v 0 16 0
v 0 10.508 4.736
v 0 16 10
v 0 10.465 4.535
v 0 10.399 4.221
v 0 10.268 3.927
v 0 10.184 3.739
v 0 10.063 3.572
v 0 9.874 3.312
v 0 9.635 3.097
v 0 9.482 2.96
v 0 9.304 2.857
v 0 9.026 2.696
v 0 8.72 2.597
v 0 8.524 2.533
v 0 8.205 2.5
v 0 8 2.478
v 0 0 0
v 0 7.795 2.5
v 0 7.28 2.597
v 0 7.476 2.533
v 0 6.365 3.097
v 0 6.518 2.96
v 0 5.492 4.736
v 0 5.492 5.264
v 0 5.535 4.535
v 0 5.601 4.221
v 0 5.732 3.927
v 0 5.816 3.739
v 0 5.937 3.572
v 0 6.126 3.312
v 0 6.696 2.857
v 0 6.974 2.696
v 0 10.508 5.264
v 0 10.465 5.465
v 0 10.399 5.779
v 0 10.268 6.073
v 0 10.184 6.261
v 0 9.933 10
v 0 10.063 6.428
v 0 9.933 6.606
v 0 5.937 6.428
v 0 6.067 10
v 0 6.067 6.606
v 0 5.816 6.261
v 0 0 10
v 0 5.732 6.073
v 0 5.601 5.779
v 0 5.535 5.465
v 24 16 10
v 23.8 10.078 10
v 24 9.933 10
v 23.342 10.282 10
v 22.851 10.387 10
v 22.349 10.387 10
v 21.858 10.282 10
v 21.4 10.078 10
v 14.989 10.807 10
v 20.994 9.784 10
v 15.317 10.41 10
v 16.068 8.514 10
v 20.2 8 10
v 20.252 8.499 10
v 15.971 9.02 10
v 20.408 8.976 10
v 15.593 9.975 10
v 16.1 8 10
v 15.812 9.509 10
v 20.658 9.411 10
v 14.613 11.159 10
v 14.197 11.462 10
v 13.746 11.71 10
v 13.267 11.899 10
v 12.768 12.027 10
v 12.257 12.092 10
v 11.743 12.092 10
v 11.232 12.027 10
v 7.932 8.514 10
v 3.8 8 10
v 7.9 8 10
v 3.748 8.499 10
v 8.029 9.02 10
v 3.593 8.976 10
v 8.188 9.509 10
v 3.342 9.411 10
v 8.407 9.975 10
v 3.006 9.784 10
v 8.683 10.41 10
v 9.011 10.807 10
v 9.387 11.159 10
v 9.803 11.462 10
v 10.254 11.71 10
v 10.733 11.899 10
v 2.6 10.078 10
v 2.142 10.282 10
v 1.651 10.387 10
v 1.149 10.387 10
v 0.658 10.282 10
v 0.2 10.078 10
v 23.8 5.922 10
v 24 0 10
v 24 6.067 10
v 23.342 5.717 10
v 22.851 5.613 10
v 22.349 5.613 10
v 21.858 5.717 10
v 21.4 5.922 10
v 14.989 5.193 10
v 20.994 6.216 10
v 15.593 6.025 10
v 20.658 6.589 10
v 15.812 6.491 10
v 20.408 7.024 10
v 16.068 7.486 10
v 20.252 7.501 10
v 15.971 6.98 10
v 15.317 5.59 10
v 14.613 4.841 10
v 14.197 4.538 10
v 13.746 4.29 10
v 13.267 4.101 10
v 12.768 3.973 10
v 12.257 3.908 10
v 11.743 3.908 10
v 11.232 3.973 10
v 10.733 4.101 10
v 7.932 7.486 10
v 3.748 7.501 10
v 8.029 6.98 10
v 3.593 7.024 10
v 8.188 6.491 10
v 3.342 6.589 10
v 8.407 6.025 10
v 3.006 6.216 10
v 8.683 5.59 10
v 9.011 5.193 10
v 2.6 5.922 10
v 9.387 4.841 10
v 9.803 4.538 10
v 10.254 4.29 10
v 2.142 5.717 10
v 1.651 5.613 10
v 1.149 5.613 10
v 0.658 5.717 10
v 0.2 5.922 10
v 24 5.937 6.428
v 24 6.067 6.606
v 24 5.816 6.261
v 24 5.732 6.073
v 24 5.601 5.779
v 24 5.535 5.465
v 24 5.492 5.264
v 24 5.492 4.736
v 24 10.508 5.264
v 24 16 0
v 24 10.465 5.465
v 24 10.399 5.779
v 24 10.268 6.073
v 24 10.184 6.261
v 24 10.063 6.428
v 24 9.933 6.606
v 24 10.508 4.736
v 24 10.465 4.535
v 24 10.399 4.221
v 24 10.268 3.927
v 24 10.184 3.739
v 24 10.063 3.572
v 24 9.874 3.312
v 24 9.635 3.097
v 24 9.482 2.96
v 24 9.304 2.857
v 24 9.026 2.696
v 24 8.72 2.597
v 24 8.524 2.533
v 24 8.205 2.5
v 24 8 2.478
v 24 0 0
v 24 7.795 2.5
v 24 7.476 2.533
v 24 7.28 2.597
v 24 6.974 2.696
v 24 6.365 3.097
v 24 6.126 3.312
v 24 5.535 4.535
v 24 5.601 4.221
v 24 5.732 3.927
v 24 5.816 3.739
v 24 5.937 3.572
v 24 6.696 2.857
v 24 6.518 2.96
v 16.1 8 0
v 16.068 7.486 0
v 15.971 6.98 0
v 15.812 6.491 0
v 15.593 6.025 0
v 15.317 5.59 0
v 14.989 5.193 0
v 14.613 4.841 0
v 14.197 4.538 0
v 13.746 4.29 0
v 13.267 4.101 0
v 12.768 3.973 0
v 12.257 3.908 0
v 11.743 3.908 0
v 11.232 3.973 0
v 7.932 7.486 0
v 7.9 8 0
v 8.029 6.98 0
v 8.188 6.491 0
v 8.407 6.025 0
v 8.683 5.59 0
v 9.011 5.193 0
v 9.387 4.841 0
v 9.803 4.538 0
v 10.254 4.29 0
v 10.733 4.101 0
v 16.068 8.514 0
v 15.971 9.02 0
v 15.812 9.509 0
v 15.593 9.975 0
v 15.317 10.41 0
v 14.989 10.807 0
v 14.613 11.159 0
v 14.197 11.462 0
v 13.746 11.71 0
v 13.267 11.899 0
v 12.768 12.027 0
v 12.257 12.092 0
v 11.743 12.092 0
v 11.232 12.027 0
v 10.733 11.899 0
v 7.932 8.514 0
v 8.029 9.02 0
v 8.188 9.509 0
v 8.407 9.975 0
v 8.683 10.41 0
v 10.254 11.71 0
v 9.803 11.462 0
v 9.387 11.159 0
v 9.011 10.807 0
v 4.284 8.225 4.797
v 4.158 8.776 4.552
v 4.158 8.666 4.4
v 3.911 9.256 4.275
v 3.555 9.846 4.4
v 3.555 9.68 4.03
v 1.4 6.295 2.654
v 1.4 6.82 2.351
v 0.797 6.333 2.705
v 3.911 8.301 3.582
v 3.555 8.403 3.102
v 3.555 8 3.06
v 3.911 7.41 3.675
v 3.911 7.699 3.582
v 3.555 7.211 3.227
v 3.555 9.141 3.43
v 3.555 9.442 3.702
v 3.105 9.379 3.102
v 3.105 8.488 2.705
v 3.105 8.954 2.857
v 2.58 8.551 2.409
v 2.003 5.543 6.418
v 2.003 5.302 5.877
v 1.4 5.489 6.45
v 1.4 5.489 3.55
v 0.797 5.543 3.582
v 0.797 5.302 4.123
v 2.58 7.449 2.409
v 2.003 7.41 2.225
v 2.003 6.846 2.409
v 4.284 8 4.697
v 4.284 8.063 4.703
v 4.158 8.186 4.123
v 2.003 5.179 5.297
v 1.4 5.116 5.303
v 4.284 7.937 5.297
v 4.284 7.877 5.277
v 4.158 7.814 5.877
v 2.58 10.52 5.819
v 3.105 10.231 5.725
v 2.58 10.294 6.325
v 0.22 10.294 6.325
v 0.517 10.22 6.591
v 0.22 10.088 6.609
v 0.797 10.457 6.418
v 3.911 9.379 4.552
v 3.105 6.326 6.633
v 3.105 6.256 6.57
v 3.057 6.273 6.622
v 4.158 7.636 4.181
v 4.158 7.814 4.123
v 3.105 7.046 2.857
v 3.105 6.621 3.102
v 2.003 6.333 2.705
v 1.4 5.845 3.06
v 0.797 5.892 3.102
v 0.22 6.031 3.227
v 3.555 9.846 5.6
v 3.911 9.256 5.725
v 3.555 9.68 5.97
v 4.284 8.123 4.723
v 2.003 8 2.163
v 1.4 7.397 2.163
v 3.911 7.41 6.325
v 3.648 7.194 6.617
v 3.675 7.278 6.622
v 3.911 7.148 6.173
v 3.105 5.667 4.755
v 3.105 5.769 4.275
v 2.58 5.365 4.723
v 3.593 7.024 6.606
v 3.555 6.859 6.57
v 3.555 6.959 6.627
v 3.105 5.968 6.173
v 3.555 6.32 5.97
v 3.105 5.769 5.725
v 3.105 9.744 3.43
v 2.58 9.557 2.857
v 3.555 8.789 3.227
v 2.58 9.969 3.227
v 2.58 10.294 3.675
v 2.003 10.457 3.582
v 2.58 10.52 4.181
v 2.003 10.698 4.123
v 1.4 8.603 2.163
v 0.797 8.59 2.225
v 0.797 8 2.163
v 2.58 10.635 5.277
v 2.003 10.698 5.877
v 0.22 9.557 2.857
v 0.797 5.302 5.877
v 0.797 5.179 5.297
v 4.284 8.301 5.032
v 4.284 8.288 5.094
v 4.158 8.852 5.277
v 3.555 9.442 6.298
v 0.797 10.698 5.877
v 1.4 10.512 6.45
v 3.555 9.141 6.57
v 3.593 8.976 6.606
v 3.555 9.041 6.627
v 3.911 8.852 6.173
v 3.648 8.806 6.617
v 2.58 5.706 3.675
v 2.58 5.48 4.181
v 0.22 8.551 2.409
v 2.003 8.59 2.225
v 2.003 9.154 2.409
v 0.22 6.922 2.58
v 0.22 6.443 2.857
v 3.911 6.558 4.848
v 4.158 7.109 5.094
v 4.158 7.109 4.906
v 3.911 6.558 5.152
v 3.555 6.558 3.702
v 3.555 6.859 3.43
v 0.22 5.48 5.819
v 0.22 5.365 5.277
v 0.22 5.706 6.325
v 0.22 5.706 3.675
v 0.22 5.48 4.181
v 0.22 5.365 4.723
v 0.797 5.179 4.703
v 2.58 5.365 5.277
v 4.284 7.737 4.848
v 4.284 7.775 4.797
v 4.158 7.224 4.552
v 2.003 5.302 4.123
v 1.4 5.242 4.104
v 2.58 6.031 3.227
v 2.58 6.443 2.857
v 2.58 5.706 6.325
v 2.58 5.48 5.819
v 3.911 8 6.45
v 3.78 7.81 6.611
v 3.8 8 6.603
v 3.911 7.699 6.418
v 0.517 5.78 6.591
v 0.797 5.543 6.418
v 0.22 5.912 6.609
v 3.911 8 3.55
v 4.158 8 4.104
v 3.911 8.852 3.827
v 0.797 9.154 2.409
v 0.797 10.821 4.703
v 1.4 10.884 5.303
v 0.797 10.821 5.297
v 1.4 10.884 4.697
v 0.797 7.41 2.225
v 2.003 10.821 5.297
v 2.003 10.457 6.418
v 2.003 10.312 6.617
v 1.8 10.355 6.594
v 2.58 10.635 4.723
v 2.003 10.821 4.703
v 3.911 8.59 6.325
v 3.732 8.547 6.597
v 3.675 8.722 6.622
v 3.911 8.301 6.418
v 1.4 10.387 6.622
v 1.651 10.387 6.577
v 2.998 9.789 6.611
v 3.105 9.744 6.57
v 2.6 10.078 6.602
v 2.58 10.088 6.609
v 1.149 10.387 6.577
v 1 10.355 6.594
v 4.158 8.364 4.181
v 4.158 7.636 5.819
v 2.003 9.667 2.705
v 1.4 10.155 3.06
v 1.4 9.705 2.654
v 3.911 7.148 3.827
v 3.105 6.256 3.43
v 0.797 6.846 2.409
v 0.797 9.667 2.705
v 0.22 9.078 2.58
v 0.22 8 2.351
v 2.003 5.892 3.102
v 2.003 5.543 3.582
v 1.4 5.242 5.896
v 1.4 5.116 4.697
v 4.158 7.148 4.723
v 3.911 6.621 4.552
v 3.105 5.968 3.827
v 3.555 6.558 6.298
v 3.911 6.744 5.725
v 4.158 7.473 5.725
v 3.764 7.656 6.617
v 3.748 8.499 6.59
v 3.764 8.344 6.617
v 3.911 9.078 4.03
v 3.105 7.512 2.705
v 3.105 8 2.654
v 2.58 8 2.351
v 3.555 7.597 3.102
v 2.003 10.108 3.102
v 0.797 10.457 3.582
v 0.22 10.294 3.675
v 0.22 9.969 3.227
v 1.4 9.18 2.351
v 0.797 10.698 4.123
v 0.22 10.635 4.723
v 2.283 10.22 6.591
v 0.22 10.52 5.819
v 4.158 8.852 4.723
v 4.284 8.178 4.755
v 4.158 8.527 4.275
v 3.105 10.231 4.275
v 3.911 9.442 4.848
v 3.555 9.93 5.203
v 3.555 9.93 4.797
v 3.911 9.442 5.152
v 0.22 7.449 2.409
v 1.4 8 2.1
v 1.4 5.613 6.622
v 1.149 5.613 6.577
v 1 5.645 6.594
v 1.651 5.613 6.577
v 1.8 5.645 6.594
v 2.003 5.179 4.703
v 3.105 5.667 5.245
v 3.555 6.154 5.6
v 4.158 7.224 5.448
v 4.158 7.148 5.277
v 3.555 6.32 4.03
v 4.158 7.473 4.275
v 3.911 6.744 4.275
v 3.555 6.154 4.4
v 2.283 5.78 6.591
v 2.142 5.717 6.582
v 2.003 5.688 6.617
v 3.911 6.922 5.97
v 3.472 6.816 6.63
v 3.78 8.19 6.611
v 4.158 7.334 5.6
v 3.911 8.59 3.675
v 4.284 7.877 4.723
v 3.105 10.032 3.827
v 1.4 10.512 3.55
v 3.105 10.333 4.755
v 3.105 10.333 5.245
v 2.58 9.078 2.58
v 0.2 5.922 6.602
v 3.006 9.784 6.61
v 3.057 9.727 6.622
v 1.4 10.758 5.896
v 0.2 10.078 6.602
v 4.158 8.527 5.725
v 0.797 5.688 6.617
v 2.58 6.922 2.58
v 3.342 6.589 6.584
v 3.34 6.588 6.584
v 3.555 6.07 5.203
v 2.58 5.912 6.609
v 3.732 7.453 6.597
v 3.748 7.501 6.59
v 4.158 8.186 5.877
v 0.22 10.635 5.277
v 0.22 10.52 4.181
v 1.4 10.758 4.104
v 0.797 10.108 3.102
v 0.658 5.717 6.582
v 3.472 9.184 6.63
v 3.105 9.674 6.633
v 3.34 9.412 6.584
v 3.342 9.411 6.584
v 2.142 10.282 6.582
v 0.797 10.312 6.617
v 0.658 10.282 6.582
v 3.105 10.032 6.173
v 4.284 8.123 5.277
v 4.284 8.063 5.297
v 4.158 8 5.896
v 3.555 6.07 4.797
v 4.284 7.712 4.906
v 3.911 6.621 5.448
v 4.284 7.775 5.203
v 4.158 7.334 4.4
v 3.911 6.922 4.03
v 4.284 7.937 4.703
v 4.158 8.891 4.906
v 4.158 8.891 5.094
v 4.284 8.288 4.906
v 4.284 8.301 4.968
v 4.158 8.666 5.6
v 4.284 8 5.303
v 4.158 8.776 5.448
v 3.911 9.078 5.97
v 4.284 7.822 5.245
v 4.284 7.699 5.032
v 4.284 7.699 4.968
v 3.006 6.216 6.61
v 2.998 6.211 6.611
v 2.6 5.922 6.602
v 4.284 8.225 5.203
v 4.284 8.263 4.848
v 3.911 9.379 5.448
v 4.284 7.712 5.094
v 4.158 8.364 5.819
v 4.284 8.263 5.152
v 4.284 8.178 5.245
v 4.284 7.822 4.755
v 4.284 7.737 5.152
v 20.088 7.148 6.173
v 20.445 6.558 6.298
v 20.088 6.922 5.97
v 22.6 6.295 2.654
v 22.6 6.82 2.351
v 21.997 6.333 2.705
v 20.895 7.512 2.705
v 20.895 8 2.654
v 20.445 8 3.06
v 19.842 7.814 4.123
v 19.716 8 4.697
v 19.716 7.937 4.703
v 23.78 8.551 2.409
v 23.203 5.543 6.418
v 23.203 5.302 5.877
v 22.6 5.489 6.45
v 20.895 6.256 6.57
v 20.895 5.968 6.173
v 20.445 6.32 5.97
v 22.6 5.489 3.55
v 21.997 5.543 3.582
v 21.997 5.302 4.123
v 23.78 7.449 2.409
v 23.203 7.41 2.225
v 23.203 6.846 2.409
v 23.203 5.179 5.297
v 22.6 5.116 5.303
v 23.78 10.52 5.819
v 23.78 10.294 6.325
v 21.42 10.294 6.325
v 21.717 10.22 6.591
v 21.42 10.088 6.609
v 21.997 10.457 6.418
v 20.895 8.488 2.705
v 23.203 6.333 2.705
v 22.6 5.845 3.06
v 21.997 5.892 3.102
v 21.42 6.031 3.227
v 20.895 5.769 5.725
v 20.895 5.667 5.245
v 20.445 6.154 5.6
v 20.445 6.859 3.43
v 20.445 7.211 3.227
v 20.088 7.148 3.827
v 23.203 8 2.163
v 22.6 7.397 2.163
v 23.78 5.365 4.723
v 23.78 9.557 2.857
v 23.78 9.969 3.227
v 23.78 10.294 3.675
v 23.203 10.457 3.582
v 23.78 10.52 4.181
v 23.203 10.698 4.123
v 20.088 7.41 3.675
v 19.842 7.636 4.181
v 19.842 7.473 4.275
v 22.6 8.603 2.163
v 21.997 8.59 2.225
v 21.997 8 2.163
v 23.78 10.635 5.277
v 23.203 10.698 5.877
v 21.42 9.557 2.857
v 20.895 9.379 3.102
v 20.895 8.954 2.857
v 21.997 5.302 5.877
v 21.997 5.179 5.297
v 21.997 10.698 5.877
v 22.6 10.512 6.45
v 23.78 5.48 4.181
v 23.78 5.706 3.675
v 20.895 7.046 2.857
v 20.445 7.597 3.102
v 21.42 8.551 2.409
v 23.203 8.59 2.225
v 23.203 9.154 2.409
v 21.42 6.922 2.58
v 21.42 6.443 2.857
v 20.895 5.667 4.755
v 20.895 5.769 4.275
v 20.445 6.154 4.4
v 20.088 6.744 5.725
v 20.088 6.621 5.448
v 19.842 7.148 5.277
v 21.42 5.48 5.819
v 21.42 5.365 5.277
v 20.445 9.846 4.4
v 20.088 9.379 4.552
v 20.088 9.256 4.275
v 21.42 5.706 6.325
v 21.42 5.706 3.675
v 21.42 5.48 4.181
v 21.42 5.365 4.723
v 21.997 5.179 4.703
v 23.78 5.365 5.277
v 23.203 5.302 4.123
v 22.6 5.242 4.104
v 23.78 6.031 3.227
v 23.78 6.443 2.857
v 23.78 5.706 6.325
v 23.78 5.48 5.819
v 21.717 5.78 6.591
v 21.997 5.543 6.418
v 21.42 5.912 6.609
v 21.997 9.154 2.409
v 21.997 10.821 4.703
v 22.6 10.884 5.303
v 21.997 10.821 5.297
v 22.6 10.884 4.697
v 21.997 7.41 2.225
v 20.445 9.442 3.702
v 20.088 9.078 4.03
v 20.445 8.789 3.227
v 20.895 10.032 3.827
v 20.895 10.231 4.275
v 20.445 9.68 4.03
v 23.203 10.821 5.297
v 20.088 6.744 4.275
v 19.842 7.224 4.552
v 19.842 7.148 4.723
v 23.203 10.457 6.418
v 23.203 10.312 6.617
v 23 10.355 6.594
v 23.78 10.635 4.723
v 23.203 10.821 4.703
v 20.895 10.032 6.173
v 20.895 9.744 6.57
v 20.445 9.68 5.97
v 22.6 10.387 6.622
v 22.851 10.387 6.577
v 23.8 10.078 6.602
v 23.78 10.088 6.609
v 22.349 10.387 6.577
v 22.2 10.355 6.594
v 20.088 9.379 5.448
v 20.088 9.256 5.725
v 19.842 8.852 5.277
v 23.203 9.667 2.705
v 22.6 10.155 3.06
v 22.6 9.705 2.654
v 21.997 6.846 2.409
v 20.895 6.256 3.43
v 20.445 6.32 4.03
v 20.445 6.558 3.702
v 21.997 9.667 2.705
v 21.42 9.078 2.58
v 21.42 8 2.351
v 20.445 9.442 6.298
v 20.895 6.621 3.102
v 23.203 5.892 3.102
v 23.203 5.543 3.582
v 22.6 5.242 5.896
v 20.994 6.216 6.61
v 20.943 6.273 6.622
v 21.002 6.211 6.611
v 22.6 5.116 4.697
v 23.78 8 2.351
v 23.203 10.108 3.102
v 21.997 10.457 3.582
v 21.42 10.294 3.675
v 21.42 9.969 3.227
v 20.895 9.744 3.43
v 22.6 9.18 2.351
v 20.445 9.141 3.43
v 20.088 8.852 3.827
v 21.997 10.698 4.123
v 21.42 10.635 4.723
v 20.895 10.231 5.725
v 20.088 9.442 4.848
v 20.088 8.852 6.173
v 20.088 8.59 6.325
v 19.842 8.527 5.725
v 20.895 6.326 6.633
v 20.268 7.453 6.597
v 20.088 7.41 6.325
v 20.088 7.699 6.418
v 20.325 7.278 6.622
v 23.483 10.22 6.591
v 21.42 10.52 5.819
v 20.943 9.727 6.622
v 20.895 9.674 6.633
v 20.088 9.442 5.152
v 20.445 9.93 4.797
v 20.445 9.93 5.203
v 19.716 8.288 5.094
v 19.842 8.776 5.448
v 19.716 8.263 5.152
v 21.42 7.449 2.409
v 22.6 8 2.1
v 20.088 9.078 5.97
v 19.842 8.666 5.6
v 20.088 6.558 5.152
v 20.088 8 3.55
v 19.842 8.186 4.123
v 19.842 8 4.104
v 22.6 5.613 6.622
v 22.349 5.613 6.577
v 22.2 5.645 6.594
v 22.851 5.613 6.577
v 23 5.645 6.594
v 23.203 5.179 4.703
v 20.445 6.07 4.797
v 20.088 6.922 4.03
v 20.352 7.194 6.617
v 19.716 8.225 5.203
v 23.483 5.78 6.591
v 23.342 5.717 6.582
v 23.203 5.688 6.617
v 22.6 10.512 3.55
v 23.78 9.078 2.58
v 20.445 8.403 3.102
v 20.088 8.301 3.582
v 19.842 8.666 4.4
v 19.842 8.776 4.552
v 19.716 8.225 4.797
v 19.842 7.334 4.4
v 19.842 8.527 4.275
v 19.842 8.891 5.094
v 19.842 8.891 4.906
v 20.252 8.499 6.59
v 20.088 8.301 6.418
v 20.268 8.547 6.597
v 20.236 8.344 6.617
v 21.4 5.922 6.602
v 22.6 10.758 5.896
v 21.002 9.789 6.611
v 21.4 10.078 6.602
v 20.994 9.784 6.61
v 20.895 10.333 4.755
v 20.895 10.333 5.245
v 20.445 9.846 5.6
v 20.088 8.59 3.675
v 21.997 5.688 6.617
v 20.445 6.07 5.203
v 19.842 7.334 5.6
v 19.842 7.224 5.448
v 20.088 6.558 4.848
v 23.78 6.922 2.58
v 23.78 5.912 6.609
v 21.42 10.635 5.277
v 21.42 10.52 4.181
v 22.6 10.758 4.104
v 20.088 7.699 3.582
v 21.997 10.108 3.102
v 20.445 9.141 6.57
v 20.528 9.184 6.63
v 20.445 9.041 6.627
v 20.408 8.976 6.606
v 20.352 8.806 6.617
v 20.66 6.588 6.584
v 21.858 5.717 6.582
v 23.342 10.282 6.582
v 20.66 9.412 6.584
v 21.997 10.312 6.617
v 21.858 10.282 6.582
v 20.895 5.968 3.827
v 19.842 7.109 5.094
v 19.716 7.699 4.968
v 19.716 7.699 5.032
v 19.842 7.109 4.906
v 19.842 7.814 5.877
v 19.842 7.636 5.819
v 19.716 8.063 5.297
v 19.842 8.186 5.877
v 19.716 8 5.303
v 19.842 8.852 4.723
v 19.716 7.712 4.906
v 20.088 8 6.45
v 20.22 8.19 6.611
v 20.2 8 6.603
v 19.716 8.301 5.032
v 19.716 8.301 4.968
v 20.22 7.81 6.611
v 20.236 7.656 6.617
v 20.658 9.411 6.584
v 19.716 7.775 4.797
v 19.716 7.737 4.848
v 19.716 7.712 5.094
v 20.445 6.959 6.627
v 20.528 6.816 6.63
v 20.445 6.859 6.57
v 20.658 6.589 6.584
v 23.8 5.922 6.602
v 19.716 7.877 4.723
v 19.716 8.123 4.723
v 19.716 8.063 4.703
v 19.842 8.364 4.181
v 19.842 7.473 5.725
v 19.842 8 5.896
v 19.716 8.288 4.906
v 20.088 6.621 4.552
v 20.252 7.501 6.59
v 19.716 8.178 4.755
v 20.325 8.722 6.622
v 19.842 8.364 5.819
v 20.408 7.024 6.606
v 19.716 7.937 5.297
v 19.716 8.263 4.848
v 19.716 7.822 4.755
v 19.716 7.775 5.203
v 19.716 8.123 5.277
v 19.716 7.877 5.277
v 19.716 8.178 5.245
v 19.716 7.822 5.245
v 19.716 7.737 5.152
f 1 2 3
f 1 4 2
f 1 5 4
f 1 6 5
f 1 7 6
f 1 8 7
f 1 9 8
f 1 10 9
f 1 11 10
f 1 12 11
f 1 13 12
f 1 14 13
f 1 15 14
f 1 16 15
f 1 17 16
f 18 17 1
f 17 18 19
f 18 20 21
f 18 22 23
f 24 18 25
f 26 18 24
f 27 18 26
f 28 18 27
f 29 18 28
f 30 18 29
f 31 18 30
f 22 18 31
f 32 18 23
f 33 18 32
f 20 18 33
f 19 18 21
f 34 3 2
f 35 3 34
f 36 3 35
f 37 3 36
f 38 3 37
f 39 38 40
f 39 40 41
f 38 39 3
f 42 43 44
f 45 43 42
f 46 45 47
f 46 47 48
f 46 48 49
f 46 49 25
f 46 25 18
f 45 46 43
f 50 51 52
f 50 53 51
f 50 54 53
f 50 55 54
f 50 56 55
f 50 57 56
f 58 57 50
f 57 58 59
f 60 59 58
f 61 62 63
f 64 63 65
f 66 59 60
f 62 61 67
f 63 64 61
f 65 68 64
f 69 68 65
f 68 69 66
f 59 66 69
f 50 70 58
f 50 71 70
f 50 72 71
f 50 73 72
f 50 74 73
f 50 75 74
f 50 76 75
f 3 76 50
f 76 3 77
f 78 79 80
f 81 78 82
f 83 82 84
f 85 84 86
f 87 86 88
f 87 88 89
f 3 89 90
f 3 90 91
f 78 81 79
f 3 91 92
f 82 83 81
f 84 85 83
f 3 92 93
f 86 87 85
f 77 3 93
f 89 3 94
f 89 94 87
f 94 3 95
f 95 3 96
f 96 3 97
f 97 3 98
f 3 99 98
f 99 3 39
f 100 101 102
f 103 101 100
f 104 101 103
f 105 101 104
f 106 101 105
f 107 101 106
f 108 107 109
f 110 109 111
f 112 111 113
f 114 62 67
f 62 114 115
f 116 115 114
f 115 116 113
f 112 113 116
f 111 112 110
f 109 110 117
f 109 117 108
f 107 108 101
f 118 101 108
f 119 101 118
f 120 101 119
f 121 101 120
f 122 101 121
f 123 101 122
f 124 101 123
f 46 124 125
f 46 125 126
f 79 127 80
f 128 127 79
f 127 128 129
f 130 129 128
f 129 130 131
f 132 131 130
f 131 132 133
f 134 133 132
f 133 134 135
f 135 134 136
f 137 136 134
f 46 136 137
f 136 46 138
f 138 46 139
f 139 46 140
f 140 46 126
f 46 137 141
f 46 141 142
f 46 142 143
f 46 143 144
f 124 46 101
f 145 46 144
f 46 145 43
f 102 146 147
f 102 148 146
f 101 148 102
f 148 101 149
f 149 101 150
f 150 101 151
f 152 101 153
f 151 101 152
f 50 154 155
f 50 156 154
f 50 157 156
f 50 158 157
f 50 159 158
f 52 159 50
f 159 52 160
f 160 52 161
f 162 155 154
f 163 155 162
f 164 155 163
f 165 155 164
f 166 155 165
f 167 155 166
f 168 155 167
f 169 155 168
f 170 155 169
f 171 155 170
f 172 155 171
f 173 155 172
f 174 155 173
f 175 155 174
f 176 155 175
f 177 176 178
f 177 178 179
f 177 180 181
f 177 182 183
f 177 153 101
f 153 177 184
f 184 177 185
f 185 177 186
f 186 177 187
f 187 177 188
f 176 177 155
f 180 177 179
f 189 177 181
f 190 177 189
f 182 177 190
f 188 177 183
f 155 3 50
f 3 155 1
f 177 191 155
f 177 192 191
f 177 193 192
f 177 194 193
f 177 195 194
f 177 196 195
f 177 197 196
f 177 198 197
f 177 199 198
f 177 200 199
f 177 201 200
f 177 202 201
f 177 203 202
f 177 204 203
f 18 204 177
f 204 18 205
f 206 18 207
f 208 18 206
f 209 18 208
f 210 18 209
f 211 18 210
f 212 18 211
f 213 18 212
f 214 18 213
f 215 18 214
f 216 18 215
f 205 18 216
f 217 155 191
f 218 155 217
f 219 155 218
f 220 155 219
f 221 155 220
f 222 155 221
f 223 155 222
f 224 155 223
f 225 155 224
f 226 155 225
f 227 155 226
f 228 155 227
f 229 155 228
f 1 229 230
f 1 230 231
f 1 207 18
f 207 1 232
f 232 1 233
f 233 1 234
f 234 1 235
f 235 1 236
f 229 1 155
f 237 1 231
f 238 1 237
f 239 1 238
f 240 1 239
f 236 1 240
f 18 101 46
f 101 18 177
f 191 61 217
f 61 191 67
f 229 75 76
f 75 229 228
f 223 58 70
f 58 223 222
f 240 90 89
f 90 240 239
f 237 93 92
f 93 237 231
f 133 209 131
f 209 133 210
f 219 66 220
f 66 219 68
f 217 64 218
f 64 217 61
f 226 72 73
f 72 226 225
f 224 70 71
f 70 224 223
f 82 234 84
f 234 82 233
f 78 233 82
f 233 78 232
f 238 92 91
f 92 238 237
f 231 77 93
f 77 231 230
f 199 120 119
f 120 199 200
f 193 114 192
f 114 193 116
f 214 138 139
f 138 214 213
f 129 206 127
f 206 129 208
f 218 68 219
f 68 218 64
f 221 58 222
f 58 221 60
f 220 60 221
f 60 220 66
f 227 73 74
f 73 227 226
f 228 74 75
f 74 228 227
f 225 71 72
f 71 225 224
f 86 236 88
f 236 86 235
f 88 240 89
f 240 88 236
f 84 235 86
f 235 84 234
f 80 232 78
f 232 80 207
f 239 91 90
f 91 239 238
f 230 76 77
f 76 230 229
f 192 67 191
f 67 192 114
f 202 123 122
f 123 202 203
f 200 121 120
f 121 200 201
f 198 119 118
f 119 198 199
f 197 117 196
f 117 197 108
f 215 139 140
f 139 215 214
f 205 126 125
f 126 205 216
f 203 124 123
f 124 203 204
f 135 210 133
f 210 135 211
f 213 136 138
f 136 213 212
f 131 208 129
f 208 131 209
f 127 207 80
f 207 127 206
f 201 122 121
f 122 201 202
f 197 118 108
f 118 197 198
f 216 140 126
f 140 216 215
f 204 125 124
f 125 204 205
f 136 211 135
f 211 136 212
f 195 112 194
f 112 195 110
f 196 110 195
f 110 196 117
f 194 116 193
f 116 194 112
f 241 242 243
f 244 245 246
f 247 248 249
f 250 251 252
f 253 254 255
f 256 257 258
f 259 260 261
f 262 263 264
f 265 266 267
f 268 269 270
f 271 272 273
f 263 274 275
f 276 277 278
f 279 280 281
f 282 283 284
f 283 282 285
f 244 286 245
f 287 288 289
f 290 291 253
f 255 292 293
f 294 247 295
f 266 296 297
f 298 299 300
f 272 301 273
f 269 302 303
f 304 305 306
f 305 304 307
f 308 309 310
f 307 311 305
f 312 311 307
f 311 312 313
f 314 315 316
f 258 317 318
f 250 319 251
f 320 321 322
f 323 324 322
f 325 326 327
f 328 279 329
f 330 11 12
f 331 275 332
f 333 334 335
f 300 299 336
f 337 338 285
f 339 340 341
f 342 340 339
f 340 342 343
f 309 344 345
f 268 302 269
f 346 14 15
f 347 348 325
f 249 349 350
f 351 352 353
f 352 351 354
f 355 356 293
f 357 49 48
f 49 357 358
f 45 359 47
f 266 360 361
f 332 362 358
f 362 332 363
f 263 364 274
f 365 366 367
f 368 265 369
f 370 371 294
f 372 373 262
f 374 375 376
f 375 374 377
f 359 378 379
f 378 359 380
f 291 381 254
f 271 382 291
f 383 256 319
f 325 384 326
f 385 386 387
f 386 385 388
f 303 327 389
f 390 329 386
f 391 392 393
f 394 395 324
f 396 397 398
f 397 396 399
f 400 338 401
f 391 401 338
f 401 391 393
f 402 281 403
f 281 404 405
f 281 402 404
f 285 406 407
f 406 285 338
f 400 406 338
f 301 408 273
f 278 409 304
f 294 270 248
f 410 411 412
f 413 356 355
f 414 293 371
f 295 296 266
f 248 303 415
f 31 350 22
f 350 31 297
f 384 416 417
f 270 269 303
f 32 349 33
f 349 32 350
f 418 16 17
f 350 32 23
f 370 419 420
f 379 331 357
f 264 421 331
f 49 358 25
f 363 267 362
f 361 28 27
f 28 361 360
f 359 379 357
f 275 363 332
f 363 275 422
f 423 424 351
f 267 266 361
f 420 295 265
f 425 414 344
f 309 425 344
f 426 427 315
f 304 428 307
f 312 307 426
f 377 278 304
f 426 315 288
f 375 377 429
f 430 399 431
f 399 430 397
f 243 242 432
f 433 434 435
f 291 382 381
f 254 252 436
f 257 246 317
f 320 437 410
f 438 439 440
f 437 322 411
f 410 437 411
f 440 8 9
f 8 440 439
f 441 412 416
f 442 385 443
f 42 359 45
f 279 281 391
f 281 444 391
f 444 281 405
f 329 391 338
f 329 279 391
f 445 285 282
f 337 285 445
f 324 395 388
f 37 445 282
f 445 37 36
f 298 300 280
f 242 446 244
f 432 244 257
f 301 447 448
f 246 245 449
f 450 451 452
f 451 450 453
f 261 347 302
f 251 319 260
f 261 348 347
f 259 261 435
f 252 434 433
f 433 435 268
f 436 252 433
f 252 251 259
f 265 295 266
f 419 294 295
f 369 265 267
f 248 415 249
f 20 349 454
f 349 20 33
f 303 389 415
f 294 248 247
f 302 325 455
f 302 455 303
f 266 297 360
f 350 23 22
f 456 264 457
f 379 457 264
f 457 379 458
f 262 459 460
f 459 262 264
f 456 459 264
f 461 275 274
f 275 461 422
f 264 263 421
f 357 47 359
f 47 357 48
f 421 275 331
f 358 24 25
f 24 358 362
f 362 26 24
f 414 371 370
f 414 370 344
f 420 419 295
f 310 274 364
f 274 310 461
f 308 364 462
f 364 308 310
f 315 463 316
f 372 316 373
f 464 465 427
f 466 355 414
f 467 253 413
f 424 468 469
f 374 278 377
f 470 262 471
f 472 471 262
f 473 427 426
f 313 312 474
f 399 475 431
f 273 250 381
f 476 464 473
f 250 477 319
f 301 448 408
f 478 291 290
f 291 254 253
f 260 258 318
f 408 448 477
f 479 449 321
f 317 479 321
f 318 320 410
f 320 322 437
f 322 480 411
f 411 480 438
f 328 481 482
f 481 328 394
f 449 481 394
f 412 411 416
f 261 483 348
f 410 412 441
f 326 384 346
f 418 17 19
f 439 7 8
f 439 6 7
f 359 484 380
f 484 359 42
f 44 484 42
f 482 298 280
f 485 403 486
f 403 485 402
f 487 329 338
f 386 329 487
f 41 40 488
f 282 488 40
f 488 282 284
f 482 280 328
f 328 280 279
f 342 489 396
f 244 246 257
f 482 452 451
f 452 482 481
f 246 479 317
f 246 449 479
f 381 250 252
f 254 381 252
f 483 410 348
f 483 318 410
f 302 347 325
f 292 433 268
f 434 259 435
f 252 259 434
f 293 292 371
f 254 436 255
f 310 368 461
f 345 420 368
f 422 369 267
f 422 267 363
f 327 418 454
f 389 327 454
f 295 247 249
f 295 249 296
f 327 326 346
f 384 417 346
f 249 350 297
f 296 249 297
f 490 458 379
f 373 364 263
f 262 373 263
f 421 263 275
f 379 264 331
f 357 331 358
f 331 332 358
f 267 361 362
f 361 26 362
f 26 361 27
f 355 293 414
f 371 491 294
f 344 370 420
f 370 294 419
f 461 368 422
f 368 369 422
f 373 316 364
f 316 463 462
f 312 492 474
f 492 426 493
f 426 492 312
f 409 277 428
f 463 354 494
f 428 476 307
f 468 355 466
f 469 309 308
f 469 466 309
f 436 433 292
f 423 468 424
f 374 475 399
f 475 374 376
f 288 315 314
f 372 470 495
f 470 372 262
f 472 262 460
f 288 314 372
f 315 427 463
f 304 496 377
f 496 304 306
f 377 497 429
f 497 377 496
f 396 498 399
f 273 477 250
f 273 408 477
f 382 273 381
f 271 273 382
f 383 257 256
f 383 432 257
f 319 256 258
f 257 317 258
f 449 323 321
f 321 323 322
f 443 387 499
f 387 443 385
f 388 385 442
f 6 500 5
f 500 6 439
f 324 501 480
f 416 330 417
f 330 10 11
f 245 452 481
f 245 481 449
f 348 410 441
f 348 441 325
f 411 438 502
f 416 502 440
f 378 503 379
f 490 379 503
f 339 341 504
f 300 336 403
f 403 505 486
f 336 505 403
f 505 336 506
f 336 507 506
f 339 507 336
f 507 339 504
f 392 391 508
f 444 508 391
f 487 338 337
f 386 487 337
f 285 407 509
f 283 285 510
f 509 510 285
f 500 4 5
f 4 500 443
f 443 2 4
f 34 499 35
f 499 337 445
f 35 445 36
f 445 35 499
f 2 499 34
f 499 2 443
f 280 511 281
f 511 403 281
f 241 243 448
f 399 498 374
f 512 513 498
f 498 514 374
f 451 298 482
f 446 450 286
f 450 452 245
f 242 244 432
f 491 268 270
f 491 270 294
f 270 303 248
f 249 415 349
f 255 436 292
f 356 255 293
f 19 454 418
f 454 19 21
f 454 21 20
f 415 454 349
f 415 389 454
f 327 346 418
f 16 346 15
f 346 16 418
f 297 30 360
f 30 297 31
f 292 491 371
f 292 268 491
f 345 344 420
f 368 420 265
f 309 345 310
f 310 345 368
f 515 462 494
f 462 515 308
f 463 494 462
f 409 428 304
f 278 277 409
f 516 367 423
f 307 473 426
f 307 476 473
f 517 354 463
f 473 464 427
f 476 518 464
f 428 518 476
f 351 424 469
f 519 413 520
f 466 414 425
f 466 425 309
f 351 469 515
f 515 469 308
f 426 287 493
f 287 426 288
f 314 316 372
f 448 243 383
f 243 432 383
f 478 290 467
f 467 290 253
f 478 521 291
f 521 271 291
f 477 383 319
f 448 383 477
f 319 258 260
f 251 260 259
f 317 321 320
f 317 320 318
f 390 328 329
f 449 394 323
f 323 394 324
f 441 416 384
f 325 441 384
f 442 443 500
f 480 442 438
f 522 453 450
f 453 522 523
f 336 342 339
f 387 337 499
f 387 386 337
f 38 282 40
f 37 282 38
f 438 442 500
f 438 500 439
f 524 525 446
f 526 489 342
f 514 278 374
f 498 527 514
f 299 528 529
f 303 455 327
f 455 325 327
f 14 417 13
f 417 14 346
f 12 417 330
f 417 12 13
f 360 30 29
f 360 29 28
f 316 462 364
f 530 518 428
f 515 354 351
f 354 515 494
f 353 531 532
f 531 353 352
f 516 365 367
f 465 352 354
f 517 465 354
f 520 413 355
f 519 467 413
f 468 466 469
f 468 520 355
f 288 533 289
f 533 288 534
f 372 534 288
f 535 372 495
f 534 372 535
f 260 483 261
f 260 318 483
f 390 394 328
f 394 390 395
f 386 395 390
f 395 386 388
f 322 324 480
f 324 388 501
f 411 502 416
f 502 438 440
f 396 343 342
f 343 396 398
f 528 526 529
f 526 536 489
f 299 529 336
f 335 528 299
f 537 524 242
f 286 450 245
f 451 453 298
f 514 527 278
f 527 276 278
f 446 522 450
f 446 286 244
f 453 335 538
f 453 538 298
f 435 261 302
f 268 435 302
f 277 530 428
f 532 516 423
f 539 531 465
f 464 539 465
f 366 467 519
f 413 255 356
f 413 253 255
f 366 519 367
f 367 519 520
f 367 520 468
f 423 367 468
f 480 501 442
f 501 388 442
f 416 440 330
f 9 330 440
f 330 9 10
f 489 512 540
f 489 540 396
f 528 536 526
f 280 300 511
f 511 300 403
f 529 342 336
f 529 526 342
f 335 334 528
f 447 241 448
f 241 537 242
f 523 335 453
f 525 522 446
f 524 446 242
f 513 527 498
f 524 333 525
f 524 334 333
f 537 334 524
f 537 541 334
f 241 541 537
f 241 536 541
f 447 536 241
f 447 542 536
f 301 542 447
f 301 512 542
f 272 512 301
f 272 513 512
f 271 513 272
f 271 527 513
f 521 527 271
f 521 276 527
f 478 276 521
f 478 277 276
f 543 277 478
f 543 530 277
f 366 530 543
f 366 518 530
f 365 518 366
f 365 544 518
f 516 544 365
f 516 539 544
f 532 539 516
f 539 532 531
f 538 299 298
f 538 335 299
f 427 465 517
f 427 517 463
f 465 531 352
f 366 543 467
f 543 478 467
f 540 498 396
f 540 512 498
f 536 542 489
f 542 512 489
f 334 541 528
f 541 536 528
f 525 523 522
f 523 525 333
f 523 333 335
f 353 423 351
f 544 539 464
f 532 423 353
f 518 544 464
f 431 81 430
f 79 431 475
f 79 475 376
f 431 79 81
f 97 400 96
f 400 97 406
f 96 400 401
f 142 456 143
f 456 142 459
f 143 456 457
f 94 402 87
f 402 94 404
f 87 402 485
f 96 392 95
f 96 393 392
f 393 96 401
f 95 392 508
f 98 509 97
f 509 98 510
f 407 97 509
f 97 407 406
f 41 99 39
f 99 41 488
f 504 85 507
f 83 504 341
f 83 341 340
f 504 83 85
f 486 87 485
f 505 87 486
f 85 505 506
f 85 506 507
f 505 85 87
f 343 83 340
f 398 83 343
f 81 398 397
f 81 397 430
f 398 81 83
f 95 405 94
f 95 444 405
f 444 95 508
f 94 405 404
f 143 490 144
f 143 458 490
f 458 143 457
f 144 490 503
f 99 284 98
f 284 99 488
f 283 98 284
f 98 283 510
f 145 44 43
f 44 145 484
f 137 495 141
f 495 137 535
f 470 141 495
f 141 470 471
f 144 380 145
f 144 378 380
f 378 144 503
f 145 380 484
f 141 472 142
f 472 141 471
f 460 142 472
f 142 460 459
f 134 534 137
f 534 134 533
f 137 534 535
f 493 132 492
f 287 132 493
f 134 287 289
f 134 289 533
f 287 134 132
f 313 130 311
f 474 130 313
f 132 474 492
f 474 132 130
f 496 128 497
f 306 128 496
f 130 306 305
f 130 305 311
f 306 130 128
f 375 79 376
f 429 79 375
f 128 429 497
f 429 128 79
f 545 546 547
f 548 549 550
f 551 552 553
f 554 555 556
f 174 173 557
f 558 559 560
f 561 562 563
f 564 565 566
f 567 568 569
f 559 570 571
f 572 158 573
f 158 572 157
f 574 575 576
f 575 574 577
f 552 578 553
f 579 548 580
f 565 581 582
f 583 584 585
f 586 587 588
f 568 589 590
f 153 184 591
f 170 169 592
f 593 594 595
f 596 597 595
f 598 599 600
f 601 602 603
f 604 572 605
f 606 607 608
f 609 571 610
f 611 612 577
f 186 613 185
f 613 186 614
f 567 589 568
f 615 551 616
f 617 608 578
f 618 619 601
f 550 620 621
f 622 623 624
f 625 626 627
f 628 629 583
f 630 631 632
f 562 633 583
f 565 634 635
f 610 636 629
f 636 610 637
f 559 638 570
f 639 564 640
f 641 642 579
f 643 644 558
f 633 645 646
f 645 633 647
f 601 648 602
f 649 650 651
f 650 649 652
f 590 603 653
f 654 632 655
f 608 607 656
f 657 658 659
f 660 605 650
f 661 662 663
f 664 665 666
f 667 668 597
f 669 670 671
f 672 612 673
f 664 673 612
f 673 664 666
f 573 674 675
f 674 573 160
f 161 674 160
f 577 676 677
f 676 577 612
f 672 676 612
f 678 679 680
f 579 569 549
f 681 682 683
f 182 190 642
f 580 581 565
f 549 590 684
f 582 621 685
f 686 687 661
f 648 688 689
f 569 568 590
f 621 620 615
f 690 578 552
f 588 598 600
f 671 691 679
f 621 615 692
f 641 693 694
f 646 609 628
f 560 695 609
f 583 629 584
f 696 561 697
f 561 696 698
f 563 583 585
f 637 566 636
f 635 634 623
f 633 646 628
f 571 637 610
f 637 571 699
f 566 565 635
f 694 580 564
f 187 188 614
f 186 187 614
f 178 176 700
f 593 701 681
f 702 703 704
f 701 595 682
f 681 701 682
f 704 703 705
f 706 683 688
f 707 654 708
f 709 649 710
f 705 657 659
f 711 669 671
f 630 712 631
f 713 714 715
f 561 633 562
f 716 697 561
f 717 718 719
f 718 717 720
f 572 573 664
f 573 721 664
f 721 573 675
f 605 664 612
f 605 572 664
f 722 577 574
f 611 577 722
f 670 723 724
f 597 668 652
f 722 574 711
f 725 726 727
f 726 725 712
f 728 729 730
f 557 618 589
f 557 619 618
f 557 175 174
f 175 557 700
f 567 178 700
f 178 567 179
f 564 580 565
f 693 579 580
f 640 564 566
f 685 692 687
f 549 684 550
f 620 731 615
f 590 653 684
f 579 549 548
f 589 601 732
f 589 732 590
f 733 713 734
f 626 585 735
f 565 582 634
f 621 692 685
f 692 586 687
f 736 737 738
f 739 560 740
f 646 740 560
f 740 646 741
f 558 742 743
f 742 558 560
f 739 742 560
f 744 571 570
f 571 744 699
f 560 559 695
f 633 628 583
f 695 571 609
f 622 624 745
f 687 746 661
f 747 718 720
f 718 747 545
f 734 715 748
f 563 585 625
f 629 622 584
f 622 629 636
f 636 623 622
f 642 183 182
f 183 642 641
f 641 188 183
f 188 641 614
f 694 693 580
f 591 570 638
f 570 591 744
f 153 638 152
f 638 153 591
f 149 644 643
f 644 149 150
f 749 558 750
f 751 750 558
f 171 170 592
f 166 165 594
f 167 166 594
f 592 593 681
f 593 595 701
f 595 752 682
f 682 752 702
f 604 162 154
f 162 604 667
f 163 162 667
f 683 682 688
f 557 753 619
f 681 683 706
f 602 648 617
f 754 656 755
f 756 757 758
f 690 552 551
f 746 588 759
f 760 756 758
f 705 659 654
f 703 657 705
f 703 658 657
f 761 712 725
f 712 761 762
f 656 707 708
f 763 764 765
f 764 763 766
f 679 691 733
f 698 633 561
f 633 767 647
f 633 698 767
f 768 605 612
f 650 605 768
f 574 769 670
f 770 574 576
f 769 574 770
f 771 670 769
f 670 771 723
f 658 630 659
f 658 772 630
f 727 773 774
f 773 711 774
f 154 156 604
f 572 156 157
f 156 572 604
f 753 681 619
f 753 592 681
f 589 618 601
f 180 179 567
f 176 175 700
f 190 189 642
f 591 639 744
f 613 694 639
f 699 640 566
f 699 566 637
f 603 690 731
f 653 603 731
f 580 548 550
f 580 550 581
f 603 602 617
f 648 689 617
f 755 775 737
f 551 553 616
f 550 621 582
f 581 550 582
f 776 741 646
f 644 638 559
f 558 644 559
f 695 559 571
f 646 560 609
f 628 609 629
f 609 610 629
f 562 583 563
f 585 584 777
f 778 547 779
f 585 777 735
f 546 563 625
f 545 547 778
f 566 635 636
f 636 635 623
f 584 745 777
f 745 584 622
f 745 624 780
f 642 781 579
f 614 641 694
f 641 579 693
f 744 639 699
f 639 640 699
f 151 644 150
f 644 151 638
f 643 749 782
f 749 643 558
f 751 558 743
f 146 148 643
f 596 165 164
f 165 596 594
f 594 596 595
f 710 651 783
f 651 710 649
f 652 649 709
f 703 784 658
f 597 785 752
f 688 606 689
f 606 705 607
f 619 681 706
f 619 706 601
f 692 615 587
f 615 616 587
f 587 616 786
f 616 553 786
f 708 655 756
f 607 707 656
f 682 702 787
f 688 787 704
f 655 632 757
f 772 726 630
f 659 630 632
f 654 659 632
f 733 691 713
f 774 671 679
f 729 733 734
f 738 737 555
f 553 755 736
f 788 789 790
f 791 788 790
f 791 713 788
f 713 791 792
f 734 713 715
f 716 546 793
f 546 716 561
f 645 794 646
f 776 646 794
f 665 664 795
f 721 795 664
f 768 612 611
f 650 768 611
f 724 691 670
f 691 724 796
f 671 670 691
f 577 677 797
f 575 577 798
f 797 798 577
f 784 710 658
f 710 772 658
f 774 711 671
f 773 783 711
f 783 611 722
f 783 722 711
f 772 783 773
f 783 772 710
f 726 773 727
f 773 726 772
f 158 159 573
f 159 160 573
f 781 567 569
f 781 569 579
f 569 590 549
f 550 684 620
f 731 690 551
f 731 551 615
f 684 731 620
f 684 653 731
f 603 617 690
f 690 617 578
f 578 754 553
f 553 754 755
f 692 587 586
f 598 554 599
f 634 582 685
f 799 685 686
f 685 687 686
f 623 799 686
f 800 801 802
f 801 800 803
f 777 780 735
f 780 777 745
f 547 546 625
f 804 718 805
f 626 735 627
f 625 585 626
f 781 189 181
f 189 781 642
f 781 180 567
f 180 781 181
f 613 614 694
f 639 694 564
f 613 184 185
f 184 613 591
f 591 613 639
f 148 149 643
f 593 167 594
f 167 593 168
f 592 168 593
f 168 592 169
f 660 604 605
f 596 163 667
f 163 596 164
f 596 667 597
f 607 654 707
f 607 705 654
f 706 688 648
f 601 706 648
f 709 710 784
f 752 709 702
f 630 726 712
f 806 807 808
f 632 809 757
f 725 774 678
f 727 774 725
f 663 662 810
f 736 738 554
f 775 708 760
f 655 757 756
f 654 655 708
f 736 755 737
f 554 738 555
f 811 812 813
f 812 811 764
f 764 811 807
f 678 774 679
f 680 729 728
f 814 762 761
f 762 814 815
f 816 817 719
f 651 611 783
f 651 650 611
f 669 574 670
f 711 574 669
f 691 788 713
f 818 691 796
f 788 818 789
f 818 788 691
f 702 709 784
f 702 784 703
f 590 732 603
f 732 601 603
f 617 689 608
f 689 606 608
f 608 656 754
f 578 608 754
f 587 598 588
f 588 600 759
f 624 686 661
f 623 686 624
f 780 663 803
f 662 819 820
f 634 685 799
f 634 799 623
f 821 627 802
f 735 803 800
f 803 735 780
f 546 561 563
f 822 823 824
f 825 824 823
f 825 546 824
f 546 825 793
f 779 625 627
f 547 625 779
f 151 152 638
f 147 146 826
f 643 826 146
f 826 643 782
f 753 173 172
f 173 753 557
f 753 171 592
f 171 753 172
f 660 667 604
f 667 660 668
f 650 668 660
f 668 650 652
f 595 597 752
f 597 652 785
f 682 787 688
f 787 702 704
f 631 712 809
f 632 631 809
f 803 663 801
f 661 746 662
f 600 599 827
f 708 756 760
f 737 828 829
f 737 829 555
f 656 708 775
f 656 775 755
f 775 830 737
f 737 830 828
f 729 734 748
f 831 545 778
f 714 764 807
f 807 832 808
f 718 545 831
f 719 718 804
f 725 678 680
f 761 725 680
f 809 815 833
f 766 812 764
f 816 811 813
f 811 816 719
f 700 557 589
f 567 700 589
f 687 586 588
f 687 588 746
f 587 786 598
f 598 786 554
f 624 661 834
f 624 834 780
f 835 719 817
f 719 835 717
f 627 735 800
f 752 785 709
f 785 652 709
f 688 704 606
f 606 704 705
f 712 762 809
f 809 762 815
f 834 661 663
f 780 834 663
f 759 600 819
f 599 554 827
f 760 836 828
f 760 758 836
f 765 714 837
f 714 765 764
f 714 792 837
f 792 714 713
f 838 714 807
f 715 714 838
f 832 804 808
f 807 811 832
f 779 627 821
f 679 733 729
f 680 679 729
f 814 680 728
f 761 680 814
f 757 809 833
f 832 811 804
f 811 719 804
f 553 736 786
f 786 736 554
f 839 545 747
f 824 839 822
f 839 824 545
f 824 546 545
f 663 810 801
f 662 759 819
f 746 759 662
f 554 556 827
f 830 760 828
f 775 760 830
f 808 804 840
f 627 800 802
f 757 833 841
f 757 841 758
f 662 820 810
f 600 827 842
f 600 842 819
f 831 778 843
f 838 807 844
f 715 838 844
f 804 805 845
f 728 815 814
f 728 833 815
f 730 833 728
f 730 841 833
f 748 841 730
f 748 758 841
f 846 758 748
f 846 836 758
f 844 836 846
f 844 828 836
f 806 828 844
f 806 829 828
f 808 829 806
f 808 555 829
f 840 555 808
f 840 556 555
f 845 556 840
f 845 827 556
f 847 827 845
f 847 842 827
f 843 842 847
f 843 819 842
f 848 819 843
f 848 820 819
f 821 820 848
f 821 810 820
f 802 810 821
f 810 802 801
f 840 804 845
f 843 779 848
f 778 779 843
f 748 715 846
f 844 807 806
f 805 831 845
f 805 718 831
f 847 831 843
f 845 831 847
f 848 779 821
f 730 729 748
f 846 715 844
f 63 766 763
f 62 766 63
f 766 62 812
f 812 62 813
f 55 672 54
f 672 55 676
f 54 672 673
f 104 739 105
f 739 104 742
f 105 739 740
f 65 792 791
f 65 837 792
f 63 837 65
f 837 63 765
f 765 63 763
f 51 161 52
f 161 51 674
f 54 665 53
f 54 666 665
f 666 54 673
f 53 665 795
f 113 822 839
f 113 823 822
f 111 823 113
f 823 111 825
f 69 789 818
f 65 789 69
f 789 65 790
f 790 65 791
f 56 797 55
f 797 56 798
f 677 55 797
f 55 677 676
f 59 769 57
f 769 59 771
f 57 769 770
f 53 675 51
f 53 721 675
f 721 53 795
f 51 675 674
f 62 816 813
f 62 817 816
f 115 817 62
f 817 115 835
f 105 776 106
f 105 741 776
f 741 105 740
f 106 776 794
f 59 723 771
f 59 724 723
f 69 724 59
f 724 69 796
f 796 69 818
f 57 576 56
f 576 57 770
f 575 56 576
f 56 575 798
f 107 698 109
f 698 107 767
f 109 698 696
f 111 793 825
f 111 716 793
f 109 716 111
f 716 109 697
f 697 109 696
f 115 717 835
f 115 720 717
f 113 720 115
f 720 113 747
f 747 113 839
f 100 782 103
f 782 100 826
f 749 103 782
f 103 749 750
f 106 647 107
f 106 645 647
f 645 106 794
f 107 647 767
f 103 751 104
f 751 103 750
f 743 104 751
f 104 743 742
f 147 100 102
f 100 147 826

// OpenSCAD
difference(){
difference(){
scale([2.4,1.6,1])
	cube (10);

translate([12,8,-0.5])
	cylinder(60,4.1,4.1, $fn=50);
}

translate([1.4,8,16])
rotate([0,90,0])
union(){
translate([11,0,0])sphere(2.9, $fn=30);
rotate([0,90,0])
	cylinder(10,2.4,2.4, $fn=30);
}

translate([22.6,8,16])
rotate([0,90,0])
union(){
translate([11,0,0])sphere(2.9, $fn=30);
rotate([0,90,0])
	cylinder(10,2.4,2.4, $fn=30);
}
}
